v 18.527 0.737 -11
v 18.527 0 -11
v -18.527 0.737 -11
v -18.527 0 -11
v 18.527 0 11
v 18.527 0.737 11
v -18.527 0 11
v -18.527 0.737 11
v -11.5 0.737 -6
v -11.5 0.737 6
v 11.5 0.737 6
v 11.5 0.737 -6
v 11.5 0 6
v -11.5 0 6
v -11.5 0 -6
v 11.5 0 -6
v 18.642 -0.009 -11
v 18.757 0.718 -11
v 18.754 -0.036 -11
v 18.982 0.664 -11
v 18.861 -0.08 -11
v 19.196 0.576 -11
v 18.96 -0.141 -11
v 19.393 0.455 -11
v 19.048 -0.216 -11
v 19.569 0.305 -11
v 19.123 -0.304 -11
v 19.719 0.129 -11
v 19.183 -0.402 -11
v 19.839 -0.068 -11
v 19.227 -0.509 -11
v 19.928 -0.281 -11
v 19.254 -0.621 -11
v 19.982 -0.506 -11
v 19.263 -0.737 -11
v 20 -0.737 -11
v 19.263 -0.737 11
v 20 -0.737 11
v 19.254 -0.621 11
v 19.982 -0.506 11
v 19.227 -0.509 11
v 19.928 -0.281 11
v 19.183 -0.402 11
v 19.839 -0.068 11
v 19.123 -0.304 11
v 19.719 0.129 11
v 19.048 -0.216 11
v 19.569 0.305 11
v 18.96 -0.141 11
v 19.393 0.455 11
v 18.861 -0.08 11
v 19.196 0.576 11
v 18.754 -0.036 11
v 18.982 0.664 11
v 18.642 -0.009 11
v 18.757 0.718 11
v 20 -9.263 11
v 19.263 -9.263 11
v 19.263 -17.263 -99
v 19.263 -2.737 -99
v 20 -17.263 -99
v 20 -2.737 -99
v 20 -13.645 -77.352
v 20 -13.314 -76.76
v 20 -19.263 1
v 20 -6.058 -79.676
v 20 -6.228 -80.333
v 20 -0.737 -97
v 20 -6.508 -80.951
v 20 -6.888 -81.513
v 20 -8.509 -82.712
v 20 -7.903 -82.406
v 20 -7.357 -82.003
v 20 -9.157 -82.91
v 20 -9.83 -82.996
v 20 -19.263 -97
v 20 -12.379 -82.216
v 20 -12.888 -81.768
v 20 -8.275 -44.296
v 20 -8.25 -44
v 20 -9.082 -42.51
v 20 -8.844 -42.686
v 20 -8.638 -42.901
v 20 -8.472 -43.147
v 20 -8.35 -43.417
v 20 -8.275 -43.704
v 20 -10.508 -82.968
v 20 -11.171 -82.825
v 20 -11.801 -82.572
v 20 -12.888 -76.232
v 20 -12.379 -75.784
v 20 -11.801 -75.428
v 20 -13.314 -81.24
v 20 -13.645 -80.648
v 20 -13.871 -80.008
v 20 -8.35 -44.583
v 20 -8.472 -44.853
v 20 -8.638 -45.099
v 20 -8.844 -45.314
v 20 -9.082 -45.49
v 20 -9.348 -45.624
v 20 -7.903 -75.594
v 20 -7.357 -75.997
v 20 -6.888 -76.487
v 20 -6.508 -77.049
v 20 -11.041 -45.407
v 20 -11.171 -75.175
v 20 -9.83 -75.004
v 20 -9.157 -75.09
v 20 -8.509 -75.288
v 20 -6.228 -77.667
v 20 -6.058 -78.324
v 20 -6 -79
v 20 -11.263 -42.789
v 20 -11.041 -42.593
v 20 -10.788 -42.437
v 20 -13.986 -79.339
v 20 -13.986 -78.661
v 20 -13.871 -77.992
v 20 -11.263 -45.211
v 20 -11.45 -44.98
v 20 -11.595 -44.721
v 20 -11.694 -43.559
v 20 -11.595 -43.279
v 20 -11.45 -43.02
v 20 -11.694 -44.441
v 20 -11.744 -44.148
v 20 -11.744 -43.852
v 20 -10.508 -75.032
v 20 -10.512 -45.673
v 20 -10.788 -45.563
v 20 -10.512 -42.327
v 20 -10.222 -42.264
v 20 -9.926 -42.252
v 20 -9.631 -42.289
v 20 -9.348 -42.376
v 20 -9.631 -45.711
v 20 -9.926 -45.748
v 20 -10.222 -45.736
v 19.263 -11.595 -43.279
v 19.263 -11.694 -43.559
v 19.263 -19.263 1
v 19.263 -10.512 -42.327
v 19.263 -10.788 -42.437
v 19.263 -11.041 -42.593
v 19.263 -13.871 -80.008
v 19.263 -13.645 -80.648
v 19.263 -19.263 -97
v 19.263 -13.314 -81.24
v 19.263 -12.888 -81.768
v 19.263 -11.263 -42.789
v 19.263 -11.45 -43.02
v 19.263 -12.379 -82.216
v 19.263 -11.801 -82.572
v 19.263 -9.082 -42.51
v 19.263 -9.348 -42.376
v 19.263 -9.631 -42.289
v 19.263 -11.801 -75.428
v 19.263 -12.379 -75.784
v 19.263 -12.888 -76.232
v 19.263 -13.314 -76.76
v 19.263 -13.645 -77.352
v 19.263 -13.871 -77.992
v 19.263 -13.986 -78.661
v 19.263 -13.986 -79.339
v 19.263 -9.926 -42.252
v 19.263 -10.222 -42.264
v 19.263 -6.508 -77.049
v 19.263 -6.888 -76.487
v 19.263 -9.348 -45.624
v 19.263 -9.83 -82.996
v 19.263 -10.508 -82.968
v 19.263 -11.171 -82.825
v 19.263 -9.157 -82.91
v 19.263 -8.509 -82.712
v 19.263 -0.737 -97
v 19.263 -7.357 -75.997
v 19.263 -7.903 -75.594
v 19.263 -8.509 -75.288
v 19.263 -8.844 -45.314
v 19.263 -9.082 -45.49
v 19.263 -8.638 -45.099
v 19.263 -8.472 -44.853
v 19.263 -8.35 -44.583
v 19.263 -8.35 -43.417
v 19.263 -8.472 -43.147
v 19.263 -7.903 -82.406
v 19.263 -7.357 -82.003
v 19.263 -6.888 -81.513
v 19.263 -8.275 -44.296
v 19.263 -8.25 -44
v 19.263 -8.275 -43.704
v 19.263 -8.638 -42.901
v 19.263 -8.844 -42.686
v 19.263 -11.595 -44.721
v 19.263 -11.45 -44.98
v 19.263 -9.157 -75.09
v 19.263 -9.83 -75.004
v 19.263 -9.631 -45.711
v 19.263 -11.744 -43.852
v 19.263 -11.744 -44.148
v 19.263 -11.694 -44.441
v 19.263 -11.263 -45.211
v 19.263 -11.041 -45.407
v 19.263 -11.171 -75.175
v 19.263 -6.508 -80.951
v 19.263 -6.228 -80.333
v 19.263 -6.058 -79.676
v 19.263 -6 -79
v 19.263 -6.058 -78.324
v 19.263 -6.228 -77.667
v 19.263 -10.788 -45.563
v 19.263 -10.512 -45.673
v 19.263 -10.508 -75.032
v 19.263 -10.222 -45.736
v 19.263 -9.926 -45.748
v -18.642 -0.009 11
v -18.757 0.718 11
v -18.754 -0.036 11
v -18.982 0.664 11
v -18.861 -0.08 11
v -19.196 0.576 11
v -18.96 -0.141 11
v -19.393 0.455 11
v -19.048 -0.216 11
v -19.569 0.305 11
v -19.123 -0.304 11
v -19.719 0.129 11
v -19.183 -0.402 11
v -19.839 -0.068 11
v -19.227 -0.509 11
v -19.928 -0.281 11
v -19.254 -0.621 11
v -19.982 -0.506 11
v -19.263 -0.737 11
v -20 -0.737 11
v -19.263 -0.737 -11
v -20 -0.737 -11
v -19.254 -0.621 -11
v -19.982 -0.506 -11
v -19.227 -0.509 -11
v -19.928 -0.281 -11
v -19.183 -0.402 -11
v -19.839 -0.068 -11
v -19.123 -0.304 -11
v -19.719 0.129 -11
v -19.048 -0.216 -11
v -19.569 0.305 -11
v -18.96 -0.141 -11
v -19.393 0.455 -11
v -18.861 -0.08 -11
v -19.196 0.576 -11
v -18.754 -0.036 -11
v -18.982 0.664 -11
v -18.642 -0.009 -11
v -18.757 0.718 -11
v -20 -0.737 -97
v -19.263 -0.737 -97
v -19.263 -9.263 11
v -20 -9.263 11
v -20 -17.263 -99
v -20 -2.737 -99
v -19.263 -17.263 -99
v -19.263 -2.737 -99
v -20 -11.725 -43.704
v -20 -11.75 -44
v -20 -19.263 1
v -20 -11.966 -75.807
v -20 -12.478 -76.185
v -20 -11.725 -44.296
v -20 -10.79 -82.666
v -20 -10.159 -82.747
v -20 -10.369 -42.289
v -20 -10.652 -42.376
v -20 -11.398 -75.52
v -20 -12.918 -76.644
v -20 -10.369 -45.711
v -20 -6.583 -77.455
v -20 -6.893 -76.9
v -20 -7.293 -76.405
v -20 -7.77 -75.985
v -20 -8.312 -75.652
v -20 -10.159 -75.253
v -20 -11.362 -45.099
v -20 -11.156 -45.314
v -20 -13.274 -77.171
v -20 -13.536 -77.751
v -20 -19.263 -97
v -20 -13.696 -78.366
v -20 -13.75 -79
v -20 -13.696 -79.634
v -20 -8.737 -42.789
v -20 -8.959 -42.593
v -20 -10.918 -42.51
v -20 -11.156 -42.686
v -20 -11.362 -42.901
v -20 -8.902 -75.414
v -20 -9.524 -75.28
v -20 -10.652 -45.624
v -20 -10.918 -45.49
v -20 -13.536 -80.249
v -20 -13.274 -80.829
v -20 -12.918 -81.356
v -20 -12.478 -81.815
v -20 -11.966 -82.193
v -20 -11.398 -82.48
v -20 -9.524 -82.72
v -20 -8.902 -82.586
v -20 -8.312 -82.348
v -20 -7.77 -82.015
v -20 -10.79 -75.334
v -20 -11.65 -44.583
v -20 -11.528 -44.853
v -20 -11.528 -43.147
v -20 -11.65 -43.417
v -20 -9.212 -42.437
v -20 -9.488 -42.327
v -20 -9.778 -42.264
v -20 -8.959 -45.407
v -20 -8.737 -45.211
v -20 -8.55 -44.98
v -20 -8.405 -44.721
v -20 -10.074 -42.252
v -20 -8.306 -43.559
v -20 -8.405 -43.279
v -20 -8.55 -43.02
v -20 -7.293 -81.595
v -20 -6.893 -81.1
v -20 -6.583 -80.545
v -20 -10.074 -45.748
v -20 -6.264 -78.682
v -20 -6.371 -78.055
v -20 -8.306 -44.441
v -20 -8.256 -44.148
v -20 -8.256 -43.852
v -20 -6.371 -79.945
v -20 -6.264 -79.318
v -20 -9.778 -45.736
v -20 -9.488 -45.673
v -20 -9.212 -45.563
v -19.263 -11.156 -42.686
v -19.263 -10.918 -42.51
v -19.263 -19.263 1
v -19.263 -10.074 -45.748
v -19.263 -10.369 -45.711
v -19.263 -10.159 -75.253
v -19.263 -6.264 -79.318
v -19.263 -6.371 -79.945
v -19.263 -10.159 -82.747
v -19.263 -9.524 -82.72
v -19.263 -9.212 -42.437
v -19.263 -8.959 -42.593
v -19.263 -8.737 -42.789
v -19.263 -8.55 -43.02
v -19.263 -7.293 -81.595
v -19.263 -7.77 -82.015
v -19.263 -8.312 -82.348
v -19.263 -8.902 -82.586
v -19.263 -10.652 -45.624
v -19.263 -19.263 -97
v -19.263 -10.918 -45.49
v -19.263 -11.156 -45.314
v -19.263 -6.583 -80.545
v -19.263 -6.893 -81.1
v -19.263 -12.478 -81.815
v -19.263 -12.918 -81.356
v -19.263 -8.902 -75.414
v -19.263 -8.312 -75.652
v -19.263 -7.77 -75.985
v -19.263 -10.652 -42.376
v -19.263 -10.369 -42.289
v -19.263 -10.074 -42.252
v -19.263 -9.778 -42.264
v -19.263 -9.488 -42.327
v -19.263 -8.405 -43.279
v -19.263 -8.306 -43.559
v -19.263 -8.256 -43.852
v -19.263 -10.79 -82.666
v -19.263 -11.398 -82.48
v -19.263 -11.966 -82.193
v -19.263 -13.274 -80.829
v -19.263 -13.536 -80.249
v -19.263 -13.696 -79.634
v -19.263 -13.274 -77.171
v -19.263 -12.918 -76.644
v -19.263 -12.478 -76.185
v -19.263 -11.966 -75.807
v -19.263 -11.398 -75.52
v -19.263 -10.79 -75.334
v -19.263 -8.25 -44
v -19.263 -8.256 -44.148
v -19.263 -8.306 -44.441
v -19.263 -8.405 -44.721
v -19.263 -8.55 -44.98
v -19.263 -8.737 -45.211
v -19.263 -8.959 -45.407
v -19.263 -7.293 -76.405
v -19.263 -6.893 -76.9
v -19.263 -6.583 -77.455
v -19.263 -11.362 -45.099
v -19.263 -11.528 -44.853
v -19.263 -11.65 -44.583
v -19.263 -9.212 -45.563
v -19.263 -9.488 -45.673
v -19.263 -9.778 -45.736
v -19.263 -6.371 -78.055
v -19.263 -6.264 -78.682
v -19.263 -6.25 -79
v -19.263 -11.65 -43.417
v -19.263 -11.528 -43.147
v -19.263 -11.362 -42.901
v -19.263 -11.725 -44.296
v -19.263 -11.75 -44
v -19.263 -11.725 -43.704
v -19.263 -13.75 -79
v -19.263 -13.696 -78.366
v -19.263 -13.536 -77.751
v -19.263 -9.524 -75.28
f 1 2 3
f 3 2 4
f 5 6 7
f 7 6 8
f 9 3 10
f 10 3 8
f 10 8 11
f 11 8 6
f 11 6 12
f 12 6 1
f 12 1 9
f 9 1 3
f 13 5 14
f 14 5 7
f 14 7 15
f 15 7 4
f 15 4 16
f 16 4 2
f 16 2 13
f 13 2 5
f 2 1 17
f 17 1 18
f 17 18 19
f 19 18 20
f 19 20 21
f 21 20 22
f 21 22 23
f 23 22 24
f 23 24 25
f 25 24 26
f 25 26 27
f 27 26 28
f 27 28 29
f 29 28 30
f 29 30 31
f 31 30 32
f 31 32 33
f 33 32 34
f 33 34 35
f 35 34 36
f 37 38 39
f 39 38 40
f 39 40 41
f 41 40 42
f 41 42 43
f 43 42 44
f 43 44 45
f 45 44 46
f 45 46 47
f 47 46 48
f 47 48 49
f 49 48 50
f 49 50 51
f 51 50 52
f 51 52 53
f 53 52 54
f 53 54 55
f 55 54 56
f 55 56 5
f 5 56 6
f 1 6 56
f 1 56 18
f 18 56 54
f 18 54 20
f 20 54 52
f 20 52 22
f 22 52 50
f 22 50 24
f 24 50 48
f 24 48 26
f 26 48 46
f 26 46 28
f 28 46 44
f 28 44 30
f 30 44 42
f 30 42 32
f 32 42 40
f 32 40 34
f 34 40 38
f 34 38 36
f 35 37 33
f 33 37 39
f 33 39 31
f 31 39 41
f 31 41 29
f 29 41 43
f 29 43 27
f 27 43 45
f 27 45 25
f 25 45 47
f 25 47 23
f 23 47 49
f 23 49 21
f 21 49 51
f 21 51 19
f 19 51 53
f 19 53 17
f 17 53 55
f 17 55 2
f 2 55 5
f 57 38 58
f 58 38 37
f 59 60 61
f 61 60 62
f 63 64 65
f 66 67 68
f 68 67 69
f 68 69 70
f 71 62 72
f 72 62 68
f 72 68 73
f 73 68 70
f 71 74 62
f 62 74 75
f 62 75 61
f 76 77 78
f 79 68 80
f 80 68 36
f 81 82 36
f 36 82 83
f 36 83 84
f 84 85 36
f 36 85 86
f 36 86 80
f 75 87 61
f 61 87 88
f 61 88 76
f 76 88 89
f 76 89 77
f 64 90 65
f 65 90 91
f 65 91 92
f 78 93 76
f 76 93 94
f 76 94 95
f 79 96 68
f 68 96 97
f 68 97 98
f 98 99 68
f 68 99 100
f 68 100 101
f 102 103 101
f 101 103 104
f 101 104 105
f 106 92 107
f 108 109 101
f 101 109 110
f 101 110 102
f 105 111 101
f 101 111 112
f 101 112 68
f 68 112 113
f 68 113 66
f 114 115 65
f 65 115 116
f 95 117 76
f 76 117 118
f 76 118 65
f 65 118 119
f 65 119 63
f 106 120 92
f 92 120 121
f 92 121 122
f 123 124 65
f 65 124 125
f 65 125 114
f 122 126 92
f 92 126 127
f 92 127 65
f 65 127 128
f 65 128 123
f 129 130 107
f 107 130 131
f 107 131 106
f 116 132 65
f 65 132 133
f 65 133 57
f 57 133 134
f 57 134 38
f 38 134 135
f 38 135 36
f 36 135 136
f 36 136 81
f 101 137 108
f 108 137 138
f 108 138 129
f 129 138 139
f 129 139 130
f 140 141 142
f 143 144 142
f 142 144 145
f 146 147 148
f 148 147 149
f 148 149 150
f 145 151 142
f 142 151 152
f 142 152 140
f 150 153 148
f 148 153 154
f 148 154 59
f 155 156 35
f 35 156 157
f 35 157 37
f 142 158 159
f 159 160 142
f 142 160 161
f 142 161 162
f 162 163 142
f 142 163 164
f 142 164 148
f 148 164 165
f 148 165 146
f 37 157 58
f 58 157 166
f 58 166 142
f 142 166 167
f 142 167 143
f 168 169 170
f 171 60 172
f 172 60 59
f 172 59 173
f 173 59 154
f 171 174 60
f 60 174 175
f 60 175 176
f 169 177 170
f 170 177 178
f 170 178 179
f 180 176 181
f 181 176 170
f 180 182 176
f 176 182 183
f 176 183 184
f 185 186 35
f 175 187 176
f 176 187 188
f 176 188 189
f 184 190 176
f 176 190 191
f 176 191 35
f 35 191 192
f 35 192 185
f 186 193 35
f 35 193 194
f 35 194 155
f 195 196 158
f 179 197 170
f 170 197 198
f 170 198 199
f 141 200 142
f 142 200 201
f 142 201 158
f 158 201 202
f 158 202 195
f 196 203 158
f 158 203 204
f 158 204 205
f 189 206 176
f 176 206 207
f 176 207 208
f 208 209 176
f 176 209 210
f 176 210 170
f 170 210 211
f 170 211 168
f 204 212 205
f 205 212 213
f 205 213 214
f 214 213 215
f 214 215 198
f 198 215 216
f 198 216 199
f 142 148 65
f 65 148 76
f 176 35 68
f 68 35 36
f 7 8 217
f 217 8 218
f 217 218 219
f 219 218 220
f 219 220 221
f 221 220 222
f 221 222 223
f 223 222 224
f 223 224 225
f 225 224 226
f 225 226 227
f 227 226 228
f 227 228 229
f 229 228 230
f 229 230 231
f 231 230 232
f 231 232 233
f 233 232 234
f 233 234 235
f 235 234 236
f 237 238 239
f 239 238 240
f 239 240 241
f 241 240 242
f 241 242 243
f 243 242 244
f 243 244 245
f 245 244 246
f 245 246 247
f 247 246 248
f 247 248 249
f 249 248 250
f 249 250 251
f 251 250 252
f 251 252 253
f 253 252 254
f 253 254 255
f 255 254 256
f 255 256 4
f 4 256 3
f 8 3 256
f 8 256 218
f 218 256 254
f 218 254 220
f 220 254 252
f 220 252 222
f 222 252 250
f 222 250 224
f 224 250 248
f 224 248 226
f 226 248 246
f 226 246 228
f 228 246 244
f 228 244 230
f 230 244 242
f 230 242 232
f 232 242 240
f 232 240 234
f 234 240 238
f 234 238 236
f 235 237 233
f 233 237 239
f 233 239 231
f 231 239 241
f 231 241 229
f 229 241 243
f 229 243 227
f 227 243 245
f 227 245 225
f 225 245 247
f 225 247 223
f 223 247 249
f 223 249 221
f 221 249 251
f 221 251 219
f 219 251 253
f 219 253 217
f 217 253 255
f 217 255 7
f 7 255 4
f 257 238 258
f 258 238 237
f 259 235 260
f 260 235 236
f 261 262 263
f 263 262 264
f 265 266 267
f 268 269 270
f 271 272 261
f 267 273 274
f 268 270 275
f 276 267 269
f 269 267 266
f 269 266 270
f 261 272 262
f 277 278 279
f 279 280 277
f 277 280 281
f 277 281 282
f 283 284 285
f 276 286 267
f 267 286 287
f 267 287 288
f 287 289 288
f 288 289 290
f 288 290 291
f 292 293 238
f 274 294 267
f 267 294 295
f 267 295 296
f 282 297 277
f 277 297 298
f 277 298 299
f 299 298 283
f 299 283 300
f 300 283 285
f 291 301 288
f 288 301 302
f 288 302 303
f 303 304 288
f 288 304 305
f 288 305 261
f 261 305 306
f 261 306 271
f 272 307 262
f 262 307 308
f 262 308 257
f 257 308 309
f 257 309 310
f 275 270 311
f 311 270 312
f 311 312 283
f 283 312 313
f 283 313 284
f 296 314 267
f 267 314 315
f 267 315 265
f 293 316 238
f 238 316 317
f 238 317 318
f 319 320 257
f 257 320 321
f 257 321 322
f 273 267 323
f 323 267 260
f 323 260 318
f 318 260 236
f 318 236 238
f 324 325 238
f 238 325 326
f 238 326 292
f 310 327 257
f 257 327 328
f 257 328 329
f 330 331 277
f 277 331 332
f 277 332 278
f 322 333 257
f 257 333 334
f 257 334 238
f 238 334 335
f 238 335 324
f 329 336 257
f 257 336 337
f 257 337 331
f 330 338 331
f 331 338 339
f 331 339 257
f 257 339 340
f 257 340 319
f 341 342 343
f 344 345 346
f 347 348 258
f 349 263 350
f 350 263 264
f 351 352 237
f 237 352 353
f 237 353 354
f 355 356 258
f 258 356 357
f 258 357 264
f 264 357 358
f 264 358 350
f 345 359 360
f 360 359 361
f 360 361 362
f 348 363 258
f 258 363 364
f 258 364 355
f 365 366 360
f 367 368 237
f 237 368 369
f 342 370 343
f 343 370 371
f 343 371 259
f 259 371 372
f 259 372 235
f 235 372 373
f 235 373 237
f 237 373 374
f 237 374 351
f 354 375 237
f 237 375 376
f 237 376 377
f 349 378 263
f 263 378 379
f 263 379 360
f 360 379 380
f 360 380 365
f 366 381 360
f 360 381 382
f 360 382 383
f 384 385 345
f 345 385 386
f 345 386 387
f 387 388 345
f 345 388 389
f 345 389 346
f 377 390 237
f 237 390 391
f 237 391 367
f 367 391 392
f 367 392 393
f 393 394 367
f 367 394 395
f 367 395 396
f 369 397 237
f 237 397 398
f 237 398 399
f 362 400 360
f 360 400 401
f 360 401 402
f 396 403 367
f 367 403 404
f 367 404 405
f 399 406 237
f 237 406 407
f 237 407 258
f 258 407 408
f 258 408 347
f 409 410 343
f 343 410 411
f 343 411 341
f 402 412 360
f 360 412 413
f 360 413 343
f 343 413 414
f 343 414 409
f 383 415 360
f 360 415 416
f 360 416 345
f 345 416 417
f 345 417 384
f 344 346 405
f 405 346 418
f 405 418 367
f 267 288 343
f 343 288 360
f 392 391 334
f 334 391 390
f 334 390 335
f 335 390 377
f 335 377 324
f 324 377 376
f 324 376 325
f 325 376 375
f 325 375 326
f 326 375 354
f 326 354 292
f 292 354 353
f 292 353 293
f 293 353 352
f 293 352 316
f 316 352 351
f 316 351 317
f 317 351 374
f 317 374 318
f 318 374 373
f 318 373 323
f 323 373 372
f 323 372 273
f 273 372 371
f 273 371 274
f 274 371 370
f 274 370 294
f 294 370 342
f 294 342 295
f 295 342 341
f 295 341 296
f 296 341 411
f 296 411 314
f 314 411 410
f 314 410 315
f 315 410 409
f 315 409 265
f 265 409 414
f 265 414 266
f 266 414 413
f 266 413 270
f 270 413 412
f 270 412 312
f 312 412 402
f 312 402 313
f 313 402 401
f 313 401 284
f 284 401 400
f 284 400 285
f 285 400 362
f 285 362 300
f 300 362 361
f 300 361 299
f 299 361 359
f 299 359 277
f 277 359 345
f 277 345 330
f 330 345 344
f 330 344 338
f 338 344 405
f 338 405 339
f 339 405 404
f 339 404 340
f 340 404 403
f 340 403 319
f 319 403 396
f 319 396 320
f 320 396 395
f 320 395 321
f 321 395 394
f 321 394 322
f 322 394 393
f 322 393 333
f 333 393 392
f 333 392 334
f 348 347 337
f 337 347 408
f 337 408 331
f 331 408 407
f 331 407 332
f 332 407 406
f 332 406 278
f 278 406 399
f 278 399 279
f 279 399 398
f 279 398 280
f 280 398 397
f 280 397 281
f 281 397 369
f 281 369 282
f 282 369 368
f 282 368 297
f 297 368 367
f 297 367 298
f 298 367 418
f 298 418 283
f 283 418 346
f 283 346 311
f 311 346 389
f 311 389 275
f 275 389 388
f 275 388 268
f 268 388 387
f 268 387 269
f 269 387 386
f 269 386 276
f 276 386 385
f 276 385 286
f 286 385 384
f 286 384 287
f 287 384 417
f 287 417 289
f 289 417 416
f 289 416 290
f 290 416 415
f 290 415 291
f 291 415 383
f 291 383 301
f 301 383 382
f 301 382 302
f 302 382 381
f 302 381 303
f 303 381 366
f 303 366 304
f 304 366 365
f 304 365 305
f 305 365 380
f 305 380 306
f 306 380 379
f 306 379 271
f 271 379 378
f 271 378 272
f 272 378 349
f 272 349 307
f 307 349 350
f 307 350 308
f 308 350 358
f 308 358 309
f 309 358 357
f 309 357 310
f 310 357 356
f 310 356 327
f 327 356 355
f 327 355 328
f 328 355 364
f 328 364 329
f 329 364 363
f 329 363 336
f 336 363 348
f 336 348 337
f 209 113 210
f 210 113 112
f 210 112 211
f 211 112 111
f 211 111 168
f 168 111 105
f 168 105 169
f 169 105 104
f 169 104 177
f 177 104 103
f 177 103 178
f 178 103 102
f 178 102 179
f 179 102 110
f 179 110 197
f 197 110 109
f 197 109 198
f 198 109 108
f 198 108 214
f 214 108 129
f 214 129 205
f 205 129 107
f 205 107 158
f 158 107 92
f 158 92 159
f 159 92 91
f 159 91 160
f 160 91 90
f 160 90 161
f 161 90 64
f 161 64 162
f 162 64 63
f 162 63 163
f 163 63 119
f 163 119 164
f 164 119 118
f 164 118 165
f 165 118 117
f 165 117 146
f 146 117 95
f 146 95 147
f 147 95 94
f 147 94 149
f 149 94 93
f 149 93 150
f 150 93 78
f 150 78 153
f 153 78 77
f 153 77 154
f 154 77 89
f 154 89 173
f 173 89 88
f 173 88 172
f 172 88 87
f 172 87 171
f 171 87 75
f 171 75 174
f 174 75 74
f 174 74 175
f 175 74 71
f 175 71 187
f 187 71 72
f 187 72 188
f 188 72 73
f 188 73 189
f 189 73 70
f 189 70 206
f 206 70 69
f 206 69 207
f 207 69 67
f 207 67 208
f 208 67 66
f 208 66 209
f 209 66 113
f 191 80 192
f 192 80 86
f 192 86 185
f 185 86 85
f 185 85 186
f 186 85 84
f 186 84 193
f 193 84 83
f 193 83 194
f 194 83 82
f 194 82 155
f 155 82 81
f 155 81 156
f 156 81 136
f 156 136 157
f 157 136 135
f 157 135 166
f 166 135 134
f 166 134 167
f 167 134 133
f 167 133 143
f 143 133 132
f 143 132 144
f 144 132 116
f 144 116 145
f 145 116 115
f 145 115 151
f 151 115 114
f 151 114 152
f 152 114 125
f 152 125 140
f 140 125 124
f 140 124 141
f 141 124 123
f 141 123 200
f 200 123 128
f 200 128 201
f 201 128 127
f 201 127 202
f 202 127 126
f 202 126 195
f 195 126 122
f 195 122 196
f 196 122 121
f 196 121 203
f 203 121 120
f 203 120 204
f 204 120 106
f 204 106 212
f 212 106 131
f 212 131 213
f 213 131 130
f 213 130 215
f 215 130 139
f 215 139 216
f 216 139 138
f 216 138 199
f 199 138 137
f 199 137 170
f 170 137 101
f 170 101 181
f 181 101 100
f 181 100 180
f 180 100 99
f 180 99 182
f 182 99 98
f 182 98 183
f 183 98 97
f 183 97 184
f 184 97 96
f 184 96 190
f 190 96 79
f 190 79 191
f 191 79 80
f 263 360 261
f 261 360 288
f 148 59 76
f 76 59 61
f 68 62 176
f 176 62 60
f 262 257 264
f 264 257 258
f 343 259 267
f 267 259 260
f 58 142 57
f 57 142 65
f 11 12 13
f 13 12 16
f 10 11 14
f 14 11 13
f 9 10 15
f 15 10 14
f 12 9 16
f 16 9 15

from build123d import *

# Parameters (mm, degrees)
SKETCH1_W                      = 40
SKETCH1_H                      = 22
BASE_FLANGE2_DEPTH             = 0.7366
EDGE_FLANGE2_STRIP_W           = 4.4196
EDGE_FLANGE2_STRIP_H           = 0.7366
EDGE_FLANGE2_STRIP_CUT_DEPTH   = 22
EDGE_FLANGE2_STRIP_2_W         = 4.4196
EDGE_FLANGE2_STRIP_2_H         = 0.7366
EDGE_FLANGE2_STRIP_CUT_2_DEPTH = 22
EDGE_FLANGE2_DEPTH             = 22
EDGE_FLANGE2_PROFILE_W         = 110
EDGE_FLANGE2_PROFILE_H         = 18.5268
EDGE_FLANGE2_FLAT_DEPTH        = 0.7366
EDGE_FLANGE2_BEND_DEPTH        = 22
EDGE_FLANGE2_PROFILE_2_W       = 110
EDGE_FLANGE2_PROFILE_2_H       = 18.5268
EDGE_FLANGE2_FLAT_2_DEPTH      = 0.7366
SKETCH32_R                     = 3.75
SKETCH32_R_2                   = 1.75
CUT_EXTRUDE1_DEPTH             = 2
CUT_EXTRUDE2_START             = -2
SKETCH33_R                     = 1.75
SKETCH33_R_2                   = 4
CUT_EXTRUDE2_DEPTH             = 2
CHAMFER1_SIZE                  = 2
CHAMFER2_SIZE                  = 10
SKETCH34_W                     = 23
SKETCH34_H                     = 12
CUT_EXTRUDE3_DEPTH             = 2


# Sheet-metal steps are written as plain solids
with BuildPart() as part:
    # Sketch1 → Base-Flange2 (new body)
    with BuildSketch(Plane(origin=(0, 0, 0), x_dir=(1, 0, 0), z_dir=(0, 1, 0))):
        Rectangle(SKETCH1_W, SKETCH1_H)
    extrude(amount=BASE_FLANGE2_DEPTH)

    # Edge-Flange2 strip (across the edge) → Edge-Flange2 strip cut (cut)
    with BuildSketch(Plane(origin=(20, 0, -11), x_dir=(-1, 0, 0), z_dir=(0, 0, 1))):
        with Locations((-0.7366, -0.3683)):
            Rectangle(EDGE_FLANGE2_STRIP_W, EDGE_FLANGE2_STRIP_H)
    extrude(amount=EDGE_FLANGE2_STRIP_CUT_DEPTH, mode=Mode.SUBTRACT)

    # Edge-Flange2 strip 2 (across the edge) → Edge-Flange2 strip cut 2 (cut)
    with BuildSketch(Plane(origin=(-20, 0, 11), x_dir=(1, 0, 0), z_dir=(0, 0, -1))):
        with Locations((-0.7366, -0.3683)):
            Rectangle(EDGE_FLANGE2_STRIP_2_W, EDGE_FLANGE2_STRIP_2_H)
    extrude(amount=EDGE_FLANGE2_STRIP_CUT_2_DEPTH, mode=Mode.SUBTRACT)

    # Edge-Flange2 bend section (across the edge) → Edge-Flange2 (add)
    with BuildSketch(Plane(origin=(20, 0, -11), x_dir=(-1, 0, 0), z_dir=(0, 0, 1))):
        with BuildLine():
            Line((0, 0.7366), (0.7366, 0.7366))
            ThreePointArc((0.7366, 0.7366), (0.952345145, 0.215745145), (1.4732, 0))
            Line((1.4732, 0), (1.4732, -0.7366))
            ThreePointArc((1.4732, -0.7366), (0.43149029, -0.30510971), (0, 0.7366))
        make_face()
    extrude(amount=EDGE_FLANGE2_DEPTH)

    # Edge-Flange2 profile (on flange) → Edge-Flange2 flat (add)
    with BuildSketch(Plane(origin=(20, 0, 0), x_dir=(0, 0, -1), z_dir=(-1, 0, 0))):
        with Locations((44, 10)):
            Rectangle(EDGE_FLANGE2_PROFILE_W, EDGE_FLANGE2_PROFILE_H)
    extrude(amount=EDGE_FLANGE2_FLAT_DEPTH)

    # Edge-Flange2 bend section 2 (across the edge) → Edge-Flange2 bend (add)
    with BuildSketch(Plane(origin=(-20, 0, 11), x_dir=(1, 0, 0), z_dir=(0, 0, -1))):
        with BuildLine():
            Line((0, 0.7366), (0.7366, 0.7366))
            ThreePointArc((0.7366, 0.7366), (0.952345145, 0.215745145), (1.4732, 0))
            Line((1.4732, 0), (1.4732, -0.7366))
            ThreePointArc((1.4732, -0.7366), (0.43149029, -0.30510971), (0, 0.7366))
        make_face()
    extrude(amount=EDGE_FLANGE2_BEND_DEPTH)

    # Edge-Flange2 profile 2 (on flange) → Edge-Flange2 flat 2 (add)
    with BuildSketch(Plane(origin=(-20, 0, 0), x_dir=(0, 0, 1), z_dir=(1, 0, 0))):
        with Locations((-44, 10)):
            Rectangle(EDGE_FLANGE2_PROFILE_2_W, EDGE_FLANGE2_PROFILE_2_H)
    extrude(amount=EDGE_FLANGE2_FLAT_2_DEPTH)

    # Sketch32 → Cut-Extrude1 (cut)
    with BuildSketch(Plane.ZY.offset(20)):
        with Locations(Location((-79, -10, 0), (0, 0, 270))):
            Circle(SKETCH32_R)
        with Locations(Location((-44, -10, 0), (0, 0, 270))):
            Circle(SKETCH32_R_2)
    extrude(amount=-CUT_EXTRUDE1_DEPTH, mode=Mode.SUBTRACT)

    # Sketch33 → Cut-Extrude2 (cut)
    with BuildSketch(Plane(origin=(20, 0, 0), x_dir=(0, 0, -1), z_dir=(1, 0, 0)).offset(CUT_EXTRUDE2_START)):
        with Locations(Location((44, -10, 0), (0, 0, 270))):
            Circle(SKETCH33_R)
        with Locations(Location((79, -10, 0), (0, 0, 90))):
            Circle(SKETCH33_R_2)
    extrude(amount=CUT_EXTRUDE2_DEPTH, mode=Mode.SUBTRACT)

    # Chamfer1
    chamfer1_edges = [part.edges().sort_by_distance(p)[0] for p in [
        (19.6317, -0.7366, -99),
        (19.6317, -19.2634, -99),
        (-19.6317, -0.7366, -99),
        (-19.6317, -19.2634, -99),
    ]]
    chamfer(chamfer1_edges, length=CHAMFER1_SIZE)

    # Chamfer2
    chamfer2_edges = [part.edges().sort_by_distance(p)[0] for p in [
        (19.6317, -19.2634, 11),
        (-19.6317, -19.2634, 11),
    ]]
    chamfer(chamfer2_edges, length=CHAMFER2_SIZE)

    # Sketch34 → Cut-Extrude3 (cut)
    with BuildSketch(Plane(origin=(0, 0.7366, 0), x_dir=(1, 0, 0), z_dir=(0, 1, 0))):
        Rectangle(SKETCH34_W, SKETCH34_H)
    extrude(amount=-CUT_EXTRUDE3_DEPTH, mode=Mode.SUBTRACT)


solid = part.part
